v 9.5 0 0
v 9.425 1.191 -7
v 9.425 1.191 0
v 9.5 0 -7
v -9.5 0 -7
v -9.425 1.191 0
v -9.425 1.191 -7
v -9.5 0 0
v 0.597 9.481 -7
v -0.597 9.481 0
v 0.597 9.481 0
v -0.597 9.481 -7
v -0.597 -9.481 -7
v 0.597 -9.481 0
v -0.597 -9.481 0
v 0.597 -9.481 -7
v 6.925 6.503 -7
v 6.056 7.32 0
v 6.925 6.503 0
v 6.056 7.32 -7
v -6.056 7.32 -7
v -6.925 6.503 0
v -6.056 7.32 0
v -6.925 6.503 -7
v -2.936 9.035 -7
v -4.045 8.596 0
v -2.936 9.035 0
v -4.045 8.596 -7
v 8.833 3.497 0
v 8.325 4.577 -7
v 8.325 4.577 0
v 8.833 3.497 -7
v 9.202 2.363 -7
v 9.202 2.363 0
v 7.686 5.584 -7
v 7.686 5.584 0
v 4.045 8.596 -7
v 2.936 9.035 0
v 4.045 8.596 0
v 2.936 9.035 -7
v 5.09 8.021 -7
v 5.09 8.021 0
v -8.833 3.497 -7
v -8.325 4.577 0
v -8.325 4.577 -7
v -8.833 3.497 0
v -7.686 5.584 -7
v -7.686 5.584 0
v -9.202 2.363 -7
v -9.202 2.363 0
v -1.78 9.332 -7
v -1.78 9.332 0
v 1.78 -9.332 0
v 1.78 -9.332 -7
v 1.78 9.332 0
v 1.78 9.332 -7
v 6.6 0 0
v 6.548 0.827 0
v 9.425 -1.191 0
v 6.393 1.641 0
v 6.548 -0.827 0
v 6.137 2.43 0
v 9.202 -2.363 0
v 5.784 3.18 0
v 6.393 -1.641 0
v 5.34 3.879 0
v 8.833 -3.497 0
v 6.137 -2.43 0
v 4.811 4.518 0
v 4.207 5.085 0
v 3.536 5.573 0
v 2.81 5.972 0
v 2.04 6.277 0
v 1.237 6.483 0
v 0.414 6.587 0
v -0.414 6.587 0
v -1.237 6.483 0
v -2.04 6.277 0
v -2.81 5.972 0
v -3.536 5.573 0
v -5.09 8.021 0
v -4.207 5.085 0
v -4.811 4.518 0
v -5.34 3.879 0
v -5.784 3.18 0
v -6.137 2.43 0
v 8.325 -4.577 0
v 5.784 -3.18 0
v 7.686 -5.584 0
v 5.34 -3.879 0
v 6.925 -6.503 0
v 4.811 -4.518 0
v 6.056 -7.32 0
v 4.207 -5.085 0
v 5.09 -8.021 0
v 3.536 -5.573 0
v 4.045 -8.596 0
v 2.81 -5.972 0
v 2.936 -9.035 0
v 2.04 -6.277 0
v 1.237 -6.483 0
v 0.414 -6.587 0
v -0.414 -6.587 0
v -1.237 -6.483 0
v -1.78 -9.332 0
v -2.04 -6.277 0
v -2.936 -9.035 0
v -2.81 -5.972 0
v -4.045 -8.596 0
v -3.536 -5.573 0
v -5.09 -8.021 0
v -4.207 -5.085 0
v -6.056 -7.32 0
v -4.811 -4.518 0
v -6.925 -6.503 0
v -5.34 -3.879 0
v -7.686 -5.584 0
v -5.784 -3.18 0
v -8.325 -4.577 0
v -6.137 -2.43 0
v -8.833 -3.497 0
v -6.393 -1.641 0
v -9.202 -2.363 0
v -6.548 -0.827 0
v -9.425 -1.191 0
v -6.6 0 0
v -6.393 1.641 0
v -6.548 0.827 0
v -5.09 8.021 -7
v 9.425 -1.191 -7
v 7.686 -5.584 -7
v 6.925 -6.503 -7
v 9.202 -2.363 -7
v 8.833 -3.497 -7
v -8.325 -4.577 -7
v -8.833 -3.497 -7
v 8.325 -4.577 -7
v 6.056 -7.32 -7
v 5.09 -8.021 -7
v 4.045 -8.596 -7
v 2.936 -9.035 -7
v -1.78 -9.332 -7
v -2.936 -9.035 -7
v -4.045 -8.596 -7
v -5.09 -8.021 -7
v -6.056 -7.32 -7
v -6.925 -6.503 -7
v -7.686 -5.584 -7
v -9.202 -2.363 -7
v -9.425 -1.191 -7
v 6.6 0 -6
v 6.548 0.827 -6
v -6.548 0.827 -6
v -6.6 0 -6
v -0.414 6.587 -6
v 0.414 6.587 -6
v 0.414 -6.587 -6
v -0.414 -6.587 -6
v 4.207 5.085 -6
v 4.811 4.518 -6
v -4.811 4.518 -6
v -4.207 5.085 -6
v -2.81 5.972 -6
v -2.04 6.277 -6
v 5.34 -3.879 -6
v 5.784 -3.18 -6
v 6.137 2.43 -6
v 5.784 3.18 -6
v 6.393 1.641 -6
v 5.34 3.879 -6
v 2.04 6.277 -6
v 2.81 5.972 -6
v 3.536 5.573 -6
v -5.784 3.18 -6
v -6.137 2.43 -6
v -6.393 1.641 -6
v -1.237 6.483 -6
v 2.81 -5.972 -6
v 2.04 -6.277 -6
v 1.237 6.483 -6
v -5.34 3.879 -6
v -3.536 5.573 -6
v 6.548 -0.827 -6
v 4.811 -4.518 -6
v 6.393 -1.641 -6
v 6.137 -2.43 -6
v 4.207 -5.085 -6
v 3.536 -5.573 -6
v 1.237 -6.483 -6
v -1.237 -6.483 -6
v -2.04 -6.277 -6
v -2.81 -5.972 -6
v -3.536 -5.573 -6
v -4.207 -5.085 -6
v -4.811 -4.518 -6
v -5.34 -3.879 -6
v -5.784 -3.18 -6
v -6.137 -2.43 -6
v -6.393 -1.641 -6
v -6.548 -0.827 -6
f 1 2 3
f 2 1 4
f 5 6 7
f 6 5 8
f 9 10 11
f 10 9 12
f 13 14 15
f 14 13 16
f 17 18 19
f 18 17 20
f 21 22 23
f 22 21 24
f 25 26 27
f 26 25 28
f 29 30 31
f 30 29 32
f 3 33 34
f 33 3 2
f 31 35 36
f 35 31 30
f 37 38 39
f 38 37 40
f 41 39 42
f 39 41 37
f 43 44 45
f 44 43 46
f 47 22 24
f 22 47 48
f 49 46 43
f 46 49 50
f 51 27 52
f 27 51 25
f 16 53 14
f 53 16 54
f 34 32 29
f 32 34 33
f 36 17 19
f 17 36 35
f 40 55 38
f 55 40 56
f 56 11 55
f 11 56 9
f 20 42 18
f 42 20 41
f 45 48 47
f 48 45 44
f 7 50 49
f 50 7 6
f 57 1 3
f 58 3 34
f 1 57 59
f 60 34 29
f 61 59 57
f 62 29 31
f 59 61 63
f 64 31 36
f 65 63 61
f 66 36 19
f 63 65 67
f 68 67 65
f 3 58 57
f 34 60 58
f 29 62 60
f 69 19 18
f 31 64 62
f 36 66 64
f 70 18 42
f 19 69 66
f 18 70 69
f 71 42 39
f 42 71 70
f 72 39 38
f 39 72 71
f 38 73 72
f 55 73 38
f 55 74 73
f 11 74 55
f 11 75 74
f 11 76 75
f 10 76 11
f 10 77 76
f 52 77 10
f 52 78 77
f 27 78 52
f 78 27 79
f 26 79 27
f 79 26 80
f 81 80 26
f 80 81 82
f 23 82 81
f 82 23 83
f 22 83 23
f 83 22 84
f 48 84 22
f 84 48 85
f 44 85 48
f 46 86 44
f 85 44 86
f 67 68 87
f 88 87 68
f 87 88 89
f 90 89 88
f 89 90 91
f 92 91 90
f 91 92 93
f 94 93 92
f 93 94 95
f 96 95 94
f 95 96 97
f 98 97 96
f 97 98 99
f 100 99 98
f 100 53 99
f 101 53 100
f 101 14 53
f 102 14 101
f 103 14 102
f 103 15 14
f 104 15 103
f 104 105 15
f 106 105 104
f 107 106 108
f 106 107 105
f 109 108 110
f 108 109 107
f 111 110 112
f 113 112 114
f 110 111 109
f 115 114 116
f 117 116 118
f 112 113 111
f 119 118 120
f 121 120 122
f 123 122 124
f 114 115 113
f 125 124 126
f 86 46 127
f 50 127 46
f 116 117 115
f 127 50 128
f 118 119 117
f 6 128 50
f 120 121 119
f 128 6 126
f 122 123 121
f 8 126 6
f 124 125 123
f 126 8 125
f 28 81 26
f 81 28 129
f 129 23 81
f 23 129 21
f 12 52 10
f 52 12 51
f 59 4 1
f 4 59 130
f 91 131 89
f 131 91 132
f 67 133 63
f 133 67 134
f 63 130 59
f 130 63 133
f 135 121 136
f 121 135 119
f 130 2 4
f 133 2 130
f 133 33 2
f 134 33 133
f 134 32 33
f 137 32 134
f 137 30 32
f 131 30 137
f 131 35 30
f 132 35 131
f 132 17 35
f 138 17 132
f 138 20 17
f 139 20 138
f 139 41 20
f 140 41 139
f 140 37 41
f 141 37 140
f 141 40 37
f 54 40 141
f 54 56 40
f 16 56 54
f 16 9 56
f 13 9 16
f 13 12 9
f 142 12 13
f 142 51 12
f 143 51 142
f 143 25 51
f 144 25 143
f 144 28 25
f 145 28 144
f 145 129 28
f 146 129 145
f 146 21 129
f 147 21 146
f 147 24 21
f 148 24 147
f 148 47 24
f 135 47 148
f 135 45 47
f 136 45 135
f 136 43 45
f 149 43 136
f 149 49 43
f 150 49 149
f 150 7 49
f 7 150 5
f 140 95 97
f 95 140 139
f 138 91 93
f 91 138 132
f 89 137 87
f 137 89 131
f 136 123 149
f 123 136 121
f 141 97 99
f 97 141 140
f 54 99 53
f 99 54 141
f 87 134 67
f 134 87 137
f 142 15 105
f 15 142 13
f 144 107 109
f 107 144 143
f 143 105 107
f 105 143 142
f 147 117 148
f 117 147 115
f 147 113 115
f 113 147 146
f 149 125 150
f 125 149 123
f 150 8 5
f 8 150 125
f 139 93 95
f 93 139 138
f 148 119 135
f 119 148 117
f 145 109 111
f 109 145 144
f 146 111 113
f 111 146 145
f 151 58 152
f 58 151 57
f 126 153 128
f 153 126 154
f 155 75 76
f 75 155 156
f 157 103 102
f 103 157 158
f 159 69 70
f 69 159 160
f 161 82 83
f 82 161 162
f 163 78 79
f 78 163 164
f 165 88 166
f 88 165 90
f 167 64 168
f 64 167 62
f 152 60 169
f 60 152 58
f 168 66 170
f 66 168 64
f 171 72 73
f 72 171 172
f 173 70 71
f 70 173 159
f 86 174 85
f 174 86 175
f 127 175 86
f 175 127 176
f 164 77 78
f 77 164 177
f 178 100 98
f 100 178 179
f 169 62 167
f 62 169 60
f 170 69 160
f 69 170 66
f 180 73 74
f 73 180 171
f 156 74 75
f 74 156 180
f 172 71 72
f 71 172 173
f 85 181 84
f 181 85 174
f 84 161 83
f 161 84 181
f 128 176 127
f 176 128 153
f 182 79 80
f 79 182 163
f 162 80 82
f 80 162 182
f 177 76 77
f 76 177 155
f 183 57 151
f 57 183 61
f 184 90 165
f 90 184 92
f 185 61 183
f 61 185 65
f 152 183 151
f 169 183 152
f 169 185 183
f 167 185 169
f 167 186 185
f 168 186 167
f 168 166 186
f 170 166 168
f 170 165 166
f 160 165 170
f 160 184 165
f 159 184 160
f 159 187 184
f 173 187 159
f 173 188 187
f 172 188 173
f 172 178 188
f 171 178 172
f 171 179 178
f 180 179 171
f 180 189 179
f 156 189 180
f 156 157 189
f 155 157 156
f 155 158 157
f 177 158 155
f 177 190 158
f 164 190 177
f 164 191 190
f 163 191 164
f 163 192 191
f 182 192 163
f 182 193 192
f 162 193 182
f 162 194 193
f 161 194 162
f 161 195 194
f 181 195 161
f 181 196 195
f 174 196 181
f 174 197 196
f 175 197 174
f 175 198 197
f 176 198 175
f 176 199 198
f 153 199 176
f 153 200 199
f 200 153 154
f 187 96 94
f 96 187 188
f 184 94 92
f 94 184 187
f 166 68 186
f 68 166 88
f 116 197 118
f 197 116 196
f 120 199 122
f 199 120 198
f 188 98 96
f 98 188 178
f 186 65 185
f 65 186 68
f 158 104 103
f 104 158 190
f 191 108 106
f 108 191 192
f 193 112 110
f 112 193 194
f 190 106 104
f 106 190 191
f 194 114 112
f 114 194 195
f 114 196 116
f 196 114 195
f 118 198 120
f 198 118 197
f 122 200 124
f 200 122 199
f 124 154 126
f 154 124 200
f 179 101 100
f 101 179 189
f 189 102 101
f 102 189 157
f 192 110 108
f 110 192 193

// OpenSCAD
$fn = 50;


difference() {
	union() {
		translate(v = [0, 0, -7.0000000000]) {
			cylinder(h = 7, r = 9.5000000000);
		}
	}
	union() {
		#translate(v = [0, 0, -6.0000000000]) {
			cylinder(h = 6, r = 6.6000000000);
		}
	}
}
